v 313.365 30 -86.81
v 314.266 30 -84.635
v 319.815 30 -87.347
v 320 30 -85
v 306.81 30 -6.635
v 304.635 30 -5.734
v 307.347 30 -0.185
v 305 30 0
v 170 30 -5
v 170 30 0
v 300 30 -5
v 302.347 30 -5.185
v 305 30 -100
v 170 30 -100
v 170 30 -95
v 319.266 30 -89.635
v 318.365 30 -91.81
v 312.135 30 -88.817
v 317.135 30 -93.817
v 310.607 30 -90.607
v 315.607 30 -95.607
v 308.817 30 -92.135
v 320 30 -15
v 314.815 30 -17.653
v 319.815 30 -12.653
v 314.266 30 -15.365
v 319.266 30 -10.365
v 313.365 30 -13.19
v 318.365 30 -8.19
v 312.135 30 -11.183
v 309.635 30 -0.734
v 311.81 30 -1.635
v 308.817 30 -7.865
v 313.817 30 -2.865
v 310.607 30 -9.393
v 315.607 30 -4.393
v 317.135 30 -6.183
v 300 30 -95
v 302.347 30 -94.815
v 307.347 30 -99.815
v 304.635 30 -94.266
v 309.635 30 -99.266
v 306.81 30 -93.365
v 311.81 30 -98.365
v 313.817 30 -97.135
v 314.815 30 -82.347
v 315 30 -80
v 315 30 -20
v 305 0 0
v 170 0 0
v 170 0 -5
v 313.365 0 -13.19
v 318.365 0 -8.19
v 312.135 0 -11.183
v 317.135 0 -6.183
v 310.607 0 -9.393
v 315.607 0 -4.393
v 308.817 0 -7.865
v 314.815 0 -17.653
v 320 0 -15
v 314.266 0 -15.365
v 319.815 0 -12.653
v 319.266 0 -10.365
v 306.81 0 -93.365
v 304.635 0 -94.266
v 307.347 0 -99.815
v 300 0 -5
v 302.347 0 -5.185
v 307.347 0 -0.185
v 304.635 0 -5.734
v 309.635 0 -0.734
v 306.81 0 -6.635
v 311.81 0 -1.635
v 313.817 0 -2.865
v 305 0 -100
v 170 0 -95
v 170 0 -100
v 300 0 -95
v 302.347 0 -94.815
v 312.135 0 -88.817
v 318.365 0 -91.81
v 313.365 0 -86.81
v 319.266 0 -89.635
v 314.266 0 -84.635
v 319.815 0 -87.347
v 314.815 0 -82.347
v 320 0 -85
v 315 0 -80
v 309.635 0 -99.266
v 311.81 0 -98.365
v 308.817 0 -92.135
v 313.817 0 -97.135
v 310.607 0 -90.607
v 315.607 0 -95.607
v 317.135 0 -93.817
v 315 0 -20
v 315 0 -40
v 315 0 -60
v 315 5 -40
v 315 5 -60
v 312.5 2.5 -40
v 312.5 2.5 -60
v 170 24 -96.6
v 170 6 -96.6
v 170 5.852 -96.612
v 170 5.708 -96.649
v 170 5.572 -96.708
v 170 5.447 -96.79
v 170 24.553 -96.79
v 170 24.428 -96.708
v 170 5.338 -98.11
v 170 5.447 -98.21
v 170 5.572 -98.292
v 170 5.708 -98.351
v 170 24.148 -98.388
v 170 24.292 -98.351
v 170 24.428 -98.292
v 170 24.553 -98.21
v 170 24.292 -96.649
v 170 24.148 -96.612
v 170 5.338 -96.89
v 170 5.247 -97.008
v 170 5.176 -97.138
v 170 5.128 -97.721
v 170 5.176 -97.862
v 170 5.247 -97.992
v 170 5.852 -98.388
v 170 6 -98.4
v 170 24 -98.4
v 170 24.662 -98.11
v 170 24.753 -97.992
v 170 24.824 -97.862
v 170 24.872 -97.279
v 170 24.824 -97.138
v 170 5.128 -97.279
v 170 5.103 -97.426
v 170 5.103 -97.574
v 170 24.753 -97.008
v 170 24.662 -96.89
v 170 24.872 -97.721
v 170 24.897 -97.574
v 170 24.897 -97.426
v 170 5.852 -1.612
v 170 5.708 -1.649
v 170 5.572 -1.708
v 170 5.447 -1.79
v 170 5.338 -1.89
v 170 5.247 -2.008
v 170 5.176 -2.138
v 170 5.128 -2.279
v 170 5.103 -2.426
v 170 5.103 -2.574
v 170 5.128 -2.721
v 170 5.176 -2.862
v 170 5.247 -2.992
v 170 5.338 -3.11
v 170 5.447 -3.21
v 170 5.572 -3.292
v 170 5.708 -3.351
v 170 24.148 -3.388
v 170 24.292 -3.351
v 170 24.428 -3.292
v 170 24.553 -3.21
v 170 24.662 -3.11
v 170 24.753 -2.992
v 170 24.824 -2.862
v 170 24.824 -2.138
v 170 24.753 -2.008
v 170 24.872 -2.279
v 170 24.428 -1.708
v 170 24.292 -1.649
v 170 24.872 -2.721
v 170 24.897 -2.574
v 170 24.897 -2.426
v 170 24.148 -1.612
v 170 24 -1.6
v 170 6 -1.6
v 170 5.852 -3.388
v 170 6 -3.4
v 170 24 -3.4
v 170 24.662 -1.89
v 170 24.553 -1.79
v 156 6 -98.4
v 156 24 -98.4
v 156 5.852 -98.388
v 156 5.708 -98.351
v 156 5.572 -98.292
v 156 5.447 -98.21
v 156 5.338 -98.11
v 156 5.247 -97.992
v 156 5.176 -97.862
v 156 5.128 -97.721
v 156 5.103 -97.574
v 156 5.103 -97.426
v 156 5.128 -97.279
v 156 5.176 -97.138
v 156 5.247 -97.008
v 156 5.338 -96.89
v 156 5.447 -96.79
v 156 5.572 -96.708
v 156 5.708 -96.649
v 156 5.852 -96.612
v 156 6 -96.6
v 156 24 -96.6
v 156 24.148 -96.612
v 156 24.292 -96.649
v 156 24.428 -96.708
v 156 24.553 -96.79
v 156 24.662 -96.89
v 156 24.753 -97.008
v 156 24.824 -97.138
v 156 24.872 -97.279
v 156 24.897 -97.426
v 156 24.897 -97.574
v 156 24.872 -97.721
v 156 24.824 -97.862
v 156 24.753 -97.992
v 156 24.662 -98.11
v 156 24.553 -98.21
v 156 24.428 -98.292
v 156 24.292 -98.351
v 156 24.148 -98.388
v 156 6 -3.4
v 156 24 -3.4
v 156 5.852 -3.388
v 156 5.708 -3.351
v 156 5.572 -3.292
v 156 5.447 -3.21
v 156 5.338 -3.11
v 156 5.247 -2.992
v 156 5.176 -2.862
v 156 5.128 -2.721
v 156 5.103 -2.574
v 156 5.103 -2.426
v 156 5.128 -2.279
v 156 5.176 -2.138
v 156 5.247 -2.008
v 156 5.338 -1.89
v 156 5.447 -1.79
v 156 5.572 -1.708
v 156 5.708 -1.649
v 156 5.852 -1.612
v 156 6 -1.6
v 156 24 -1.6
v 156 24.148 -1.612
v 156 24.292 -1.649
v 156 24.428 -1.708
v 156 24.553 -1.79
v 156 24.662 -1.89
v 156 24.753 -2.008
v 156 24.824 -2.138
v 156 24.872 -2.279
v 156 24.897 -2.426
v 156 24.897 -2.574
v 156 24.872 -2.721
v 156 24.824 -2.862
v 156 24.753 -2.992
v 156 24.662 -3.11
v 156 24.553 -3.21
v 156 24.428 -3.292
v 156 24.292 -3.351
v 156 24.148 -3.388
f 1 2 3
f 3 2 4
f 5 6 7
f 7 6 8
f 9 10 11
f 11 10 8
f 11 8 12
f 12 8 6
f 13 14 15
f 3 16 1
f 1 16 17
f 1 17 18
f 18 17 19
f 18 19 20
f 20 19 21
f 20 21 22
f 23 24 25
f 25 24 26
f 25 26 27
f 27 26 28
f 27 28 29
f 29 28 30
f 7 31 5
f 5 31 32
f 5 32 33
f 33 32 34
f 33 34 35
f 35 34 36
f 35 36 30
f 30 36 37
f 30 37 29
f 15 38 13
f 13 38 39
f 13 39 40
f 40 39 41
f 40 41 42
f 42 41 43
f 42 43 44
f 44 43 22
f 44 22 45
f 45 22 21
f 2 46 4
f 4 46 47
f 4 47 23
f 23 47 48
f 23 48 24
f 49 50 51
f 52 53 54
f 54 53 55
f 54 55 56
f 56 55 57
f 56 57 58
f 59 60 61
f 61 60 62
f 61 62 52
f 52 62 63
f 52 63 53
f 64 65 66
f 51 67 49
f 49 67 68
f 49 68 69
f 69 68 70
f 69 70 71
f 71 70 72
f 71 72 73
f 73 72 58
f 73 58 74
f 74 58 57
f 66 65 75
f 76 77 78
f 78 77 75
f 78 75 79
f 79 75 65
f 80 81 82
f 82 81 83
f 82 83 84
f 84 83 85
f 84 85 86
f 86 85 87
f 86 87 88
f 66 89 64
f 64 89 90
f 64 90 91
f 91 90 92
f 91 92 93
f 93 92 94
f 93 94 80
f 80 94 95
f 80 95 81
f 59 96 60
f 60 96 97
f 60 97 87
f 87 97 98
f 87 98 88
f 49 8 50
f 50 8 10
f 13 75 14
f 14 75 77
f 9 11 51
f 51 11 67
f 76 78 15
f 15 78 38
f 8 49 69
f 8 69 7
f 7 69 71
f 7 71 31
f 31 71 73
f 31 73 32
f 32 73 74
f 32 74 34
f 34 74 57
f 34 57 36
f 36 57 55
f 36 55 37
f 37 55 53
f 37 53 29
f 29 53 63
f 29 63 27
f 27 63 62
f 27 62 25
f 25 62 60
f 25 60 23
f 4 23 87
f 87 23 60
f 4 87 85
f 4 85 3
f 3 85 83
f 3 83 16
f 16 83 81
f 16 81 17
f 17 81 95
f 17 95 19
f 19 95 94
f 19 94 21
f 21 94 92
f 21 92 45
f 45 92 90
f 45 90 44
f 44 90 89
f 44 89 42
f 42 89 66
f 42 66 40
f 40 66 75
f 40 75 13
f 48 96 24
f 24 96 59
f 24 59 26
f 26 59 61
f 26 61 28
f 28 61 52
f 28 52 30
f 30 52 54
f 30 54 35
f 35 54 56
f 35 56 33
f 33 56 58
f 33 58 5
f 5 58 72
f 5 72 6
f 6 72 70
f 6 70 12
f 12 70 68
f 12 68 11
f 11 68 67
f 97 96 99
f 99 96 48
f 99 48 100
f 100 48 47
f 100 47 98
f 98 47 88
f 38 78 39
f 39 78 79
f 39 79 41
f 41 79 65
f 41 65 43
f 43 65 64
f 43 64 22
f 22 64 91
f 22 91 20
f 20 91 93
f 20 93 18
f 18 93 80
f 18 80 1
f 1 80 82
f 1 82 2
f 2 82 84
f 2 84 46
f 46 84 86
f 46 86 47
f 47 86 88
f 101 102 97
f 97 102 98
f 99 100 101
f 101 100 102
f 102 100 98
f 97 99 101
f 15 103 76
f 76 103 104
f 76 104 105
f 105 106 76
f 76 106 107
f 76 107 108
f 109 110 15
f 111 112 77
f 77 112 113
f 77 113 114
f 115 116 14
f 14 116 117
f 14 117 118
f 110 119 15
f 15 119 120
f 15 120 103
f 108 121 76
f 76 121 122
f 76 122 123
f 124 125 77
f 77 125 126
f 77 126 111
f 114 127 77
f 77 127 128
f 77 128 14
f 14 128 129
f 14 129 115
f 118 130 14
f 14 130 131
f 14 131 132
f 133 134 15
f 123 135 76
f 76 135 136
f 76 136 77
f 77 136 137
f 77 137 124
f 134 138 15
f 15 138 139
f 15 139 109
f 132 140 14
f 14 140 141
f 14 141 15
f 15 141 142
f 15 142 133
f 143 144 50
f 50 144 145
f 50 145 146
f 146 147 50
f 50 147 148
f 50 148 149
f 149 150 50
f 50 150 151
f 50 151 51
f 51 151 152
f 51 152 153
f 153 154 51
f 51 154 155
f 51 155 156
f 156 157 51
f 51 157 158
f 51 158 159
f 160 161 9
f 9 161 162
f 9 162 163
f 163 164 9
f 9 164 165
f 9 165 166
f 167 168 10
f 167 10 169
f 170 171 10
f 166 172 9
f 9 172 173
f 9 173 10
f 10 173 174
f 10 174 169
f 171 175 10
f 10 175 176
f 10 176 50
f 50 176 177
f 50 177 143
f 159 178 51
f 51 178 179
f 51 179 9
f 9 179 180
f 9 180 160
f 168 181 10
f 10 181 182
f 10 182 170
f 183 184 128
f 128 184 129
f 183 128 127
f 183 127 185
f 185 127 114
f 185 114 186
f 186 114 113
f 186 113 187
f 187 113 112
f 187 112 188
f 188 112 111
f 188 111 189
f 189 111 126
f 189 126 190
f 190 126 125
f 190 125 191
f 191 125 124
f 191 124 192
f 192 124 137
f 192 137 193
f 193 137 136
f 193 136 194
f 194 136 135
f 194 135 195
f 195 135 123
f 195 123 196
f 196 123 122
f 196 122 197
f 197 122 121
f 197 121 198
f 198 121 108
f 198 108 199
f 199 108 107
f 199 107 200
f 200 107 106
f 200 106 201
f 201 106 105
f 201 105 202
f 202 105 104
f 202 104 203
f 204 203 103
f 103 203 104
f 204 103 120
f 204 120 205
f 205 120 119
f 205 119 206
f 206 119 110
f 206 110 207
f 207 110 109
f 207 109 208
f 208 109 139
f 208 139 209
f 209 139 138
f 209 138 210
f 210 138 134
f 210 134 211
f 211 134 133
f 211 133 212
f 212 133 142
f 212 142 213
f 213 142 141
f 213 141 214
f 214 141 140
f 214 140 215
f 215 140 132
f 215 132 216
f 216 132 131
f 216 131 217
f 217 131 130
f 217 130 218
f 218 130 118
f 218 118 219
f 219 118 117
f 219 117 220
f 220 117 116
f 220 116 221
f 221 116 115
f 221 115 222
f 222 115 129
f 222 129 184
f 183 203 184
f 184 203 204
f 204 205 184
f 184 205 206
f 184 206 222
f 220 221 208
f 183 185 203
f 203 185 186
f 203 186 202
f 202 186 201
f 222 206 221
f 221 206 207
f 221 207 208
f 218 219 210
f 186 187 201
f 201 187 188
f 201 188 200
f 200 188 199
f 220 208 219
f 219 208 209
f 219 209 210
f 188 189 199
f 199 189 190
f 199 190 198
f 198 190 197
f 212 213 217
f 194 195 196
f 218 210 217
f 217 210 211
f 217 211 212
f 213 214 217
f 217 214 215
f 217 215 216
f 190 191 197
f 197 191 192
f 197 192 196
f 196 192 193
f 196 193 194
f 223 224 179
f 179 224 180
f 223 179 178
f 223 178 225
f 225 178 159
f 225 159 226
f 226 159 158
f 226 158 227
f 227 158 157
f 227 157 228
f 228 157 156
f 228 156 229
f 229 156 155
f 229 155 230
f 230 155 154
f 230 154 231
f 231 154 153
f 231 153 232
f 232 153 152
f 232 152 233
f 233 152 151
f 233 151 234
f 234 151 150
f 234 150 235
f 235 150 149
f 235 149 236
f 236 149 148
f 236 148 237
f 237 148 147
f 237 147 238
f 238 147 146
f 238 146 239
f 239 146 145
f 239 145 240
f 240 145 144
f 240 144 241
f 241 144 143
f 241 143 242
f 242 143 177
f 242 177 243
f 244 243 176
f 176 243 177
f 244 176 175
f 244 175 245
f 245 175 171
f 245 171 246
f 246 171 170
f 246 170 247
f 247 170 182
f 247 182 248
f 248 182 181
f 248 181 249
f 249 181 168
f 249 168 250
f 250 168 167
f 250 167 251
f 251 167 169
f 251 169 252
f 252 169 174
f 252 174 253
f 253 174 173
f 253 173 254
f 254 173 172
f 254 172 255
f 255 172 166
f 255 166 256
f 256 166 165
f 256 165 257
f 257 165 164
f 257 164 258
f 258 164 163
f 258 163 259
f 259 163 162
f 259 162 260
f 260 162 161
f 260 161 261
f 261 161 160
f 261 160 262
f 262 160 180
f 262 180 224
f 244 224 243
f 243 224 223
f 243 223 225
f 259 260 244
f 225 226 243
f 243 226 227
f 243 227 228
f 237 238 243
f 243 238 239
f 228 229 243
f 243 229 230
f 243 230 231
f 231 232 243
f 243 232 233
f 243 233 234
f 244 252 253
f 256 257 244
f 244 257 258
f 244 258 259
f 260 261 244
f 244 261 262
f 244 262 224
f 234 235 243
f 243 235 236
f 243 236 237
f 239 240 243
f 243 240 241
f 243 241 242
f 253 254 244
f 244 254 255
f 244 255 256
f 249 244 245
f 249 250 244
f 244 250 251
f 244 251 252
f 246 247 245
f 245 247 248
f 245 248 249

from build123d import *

# Parameters (mm, degrees)
BOSS_EXTRUDE1_DEPTH      = 30
BOSS_EXTRUDE2_DEPTH      = 10
BOSS_EXTRUDE2_DEPTH_BACK = 10
SKETCH3_W                = 170
SKETCH3_H                = 100
CUT_EXTRUDE1_DEPTH       = 40
BOSS_EXTRUDE3_DEPTH      = 14


with BuildPart() as part:
    # Sketch1 → Boss-Extrude1 (new body)
    with BuildSketch(Plane(origin=(0, 0, 0), x_dir=(1, 0, 0), z_dir=(0, 1, 0))):
        with BuildLine():
            Line((0, 0), (305, 0))
            ThreePointArc((305, 0), (315.606601718, 4.393398282), (320, 15))
            Line((320, 15), (320, 85))
            ThreePointArc((320, 85), (315.606601718, 95.606601718), (305, 100))
            Line((305, 100), (2.5, 100))
            ThreePointArc((2.5, 100), (0.732233047, 99.267766953), (0, 97.5))
            Line((0, 97.5), (0, 0))
        make_face()
        with BuildLine():
            Line((20, 95), (300, 95))
            ThreePointArc((300, 95), (310.606601718, 90.606601718), (315, 80))
            Line((315, 80), (315, 20))
            ThreePointArc((315, 20), (310.606601718, 9.393398282), (300, 5))
            Line((300, 5), (20, 5))
            ThreePointArc((20, 5), (9.393398282, 9.393398282), (5, 20))
            Line((5, 20), (5, 80))
            ThreePointArc((5, 80), (9.393398282, 90.606601718), (20, 95))
        make_face(mode=Mode.SUBTRACT)
    extrude(amount=BOSS_EXTRUDE1_DEPTH)

    # Sketch2 → Boss-Extrude2 (add, two sides: drawn at the far end of the back side and taken through both)
    with BuildSketch(Plane.XY.offset(-50).offset(-BOSS_EXTRUDE2_DEPTH_BACK)):
        Polygon((315, 0), (315, 5), (312.5, 2.5), align=None)
    extrude(amount=BOSS_EXTRUDE2_DEPTH + BOSS_EXTRUDE2_DEPTH_BACK)

    # Sketch3 → Cut-Extrude1 (cut)
    with BuildSketch(Plane(origin=(0, 0, 0), x_dir=(1, 0, 0), z_dir=(0, 1, 0))):
        with Locations((85, 50)):
            Rectangle(SKETCH3_W, SKETCH3_H)
    extrude(amount=CUT_EXTRUDE1_DEPTH, mode=Mode.SUBTRACT)

    # Sketch4 → Boss-Extrude3 (add)
    with BuildSketch(Plane(origin=(170, 0, 0), x_dir=(0, 0, -1), z_dir=(1, 0, 0))):
        with BuildLine():
            ThreePointArc((98.4, 24), (98.136396103, 24.636396103), (97.5, 24.9))
            Line((97.5, 24.9), (97.5, 5.1))
            ThreePointArc((97.5, 5.1), (98.136396103, 5.363603897), (98.4, 6))
            Line((98.4, 6), (98.4, 24))
        make_face()
        with BuildLine():
            Line((97.5, 5.1), (97.5, 24.9))
            ThreePointArc((97.5, 24.9), (96.863603897, 24.636396103), (96.6, 24))
            Line((96.6, 24), (96.6, 6))
            ThreePointArc((96.6, 6), (96.863603897, 5.363603897), (97.5, 5.1))
        make_face()
        with BuildLine():
            ThreePointArc((3.4, 24), (3.136396103, 24.636396103), (2.5, 24.9))
            Line((2.5, 24.9), (2.5, 5.1))
            ThreePointArc((2.5, 5.1), (3.136396103, 5.363603897), (3.4, 6))
            Line((3.4, 6), (3.4, 24))
        make_face()
        with BuildLine():
            Line((2.5, 5.1), (2.5, 24.9))
            ThreePointArc((2.5, 24.9), (1.863603897, 24.636396103), (1.6, 24))
            Line((1.6, 24), (1.6, 6))
            ThreePointArc((1.6, 6), (1.863603897, 5.363603897), (2.5, 5.1))
        make_face()
    extrude(amount=-BOSS_EXTRUDE3_DEPTH)


solid = part.part
